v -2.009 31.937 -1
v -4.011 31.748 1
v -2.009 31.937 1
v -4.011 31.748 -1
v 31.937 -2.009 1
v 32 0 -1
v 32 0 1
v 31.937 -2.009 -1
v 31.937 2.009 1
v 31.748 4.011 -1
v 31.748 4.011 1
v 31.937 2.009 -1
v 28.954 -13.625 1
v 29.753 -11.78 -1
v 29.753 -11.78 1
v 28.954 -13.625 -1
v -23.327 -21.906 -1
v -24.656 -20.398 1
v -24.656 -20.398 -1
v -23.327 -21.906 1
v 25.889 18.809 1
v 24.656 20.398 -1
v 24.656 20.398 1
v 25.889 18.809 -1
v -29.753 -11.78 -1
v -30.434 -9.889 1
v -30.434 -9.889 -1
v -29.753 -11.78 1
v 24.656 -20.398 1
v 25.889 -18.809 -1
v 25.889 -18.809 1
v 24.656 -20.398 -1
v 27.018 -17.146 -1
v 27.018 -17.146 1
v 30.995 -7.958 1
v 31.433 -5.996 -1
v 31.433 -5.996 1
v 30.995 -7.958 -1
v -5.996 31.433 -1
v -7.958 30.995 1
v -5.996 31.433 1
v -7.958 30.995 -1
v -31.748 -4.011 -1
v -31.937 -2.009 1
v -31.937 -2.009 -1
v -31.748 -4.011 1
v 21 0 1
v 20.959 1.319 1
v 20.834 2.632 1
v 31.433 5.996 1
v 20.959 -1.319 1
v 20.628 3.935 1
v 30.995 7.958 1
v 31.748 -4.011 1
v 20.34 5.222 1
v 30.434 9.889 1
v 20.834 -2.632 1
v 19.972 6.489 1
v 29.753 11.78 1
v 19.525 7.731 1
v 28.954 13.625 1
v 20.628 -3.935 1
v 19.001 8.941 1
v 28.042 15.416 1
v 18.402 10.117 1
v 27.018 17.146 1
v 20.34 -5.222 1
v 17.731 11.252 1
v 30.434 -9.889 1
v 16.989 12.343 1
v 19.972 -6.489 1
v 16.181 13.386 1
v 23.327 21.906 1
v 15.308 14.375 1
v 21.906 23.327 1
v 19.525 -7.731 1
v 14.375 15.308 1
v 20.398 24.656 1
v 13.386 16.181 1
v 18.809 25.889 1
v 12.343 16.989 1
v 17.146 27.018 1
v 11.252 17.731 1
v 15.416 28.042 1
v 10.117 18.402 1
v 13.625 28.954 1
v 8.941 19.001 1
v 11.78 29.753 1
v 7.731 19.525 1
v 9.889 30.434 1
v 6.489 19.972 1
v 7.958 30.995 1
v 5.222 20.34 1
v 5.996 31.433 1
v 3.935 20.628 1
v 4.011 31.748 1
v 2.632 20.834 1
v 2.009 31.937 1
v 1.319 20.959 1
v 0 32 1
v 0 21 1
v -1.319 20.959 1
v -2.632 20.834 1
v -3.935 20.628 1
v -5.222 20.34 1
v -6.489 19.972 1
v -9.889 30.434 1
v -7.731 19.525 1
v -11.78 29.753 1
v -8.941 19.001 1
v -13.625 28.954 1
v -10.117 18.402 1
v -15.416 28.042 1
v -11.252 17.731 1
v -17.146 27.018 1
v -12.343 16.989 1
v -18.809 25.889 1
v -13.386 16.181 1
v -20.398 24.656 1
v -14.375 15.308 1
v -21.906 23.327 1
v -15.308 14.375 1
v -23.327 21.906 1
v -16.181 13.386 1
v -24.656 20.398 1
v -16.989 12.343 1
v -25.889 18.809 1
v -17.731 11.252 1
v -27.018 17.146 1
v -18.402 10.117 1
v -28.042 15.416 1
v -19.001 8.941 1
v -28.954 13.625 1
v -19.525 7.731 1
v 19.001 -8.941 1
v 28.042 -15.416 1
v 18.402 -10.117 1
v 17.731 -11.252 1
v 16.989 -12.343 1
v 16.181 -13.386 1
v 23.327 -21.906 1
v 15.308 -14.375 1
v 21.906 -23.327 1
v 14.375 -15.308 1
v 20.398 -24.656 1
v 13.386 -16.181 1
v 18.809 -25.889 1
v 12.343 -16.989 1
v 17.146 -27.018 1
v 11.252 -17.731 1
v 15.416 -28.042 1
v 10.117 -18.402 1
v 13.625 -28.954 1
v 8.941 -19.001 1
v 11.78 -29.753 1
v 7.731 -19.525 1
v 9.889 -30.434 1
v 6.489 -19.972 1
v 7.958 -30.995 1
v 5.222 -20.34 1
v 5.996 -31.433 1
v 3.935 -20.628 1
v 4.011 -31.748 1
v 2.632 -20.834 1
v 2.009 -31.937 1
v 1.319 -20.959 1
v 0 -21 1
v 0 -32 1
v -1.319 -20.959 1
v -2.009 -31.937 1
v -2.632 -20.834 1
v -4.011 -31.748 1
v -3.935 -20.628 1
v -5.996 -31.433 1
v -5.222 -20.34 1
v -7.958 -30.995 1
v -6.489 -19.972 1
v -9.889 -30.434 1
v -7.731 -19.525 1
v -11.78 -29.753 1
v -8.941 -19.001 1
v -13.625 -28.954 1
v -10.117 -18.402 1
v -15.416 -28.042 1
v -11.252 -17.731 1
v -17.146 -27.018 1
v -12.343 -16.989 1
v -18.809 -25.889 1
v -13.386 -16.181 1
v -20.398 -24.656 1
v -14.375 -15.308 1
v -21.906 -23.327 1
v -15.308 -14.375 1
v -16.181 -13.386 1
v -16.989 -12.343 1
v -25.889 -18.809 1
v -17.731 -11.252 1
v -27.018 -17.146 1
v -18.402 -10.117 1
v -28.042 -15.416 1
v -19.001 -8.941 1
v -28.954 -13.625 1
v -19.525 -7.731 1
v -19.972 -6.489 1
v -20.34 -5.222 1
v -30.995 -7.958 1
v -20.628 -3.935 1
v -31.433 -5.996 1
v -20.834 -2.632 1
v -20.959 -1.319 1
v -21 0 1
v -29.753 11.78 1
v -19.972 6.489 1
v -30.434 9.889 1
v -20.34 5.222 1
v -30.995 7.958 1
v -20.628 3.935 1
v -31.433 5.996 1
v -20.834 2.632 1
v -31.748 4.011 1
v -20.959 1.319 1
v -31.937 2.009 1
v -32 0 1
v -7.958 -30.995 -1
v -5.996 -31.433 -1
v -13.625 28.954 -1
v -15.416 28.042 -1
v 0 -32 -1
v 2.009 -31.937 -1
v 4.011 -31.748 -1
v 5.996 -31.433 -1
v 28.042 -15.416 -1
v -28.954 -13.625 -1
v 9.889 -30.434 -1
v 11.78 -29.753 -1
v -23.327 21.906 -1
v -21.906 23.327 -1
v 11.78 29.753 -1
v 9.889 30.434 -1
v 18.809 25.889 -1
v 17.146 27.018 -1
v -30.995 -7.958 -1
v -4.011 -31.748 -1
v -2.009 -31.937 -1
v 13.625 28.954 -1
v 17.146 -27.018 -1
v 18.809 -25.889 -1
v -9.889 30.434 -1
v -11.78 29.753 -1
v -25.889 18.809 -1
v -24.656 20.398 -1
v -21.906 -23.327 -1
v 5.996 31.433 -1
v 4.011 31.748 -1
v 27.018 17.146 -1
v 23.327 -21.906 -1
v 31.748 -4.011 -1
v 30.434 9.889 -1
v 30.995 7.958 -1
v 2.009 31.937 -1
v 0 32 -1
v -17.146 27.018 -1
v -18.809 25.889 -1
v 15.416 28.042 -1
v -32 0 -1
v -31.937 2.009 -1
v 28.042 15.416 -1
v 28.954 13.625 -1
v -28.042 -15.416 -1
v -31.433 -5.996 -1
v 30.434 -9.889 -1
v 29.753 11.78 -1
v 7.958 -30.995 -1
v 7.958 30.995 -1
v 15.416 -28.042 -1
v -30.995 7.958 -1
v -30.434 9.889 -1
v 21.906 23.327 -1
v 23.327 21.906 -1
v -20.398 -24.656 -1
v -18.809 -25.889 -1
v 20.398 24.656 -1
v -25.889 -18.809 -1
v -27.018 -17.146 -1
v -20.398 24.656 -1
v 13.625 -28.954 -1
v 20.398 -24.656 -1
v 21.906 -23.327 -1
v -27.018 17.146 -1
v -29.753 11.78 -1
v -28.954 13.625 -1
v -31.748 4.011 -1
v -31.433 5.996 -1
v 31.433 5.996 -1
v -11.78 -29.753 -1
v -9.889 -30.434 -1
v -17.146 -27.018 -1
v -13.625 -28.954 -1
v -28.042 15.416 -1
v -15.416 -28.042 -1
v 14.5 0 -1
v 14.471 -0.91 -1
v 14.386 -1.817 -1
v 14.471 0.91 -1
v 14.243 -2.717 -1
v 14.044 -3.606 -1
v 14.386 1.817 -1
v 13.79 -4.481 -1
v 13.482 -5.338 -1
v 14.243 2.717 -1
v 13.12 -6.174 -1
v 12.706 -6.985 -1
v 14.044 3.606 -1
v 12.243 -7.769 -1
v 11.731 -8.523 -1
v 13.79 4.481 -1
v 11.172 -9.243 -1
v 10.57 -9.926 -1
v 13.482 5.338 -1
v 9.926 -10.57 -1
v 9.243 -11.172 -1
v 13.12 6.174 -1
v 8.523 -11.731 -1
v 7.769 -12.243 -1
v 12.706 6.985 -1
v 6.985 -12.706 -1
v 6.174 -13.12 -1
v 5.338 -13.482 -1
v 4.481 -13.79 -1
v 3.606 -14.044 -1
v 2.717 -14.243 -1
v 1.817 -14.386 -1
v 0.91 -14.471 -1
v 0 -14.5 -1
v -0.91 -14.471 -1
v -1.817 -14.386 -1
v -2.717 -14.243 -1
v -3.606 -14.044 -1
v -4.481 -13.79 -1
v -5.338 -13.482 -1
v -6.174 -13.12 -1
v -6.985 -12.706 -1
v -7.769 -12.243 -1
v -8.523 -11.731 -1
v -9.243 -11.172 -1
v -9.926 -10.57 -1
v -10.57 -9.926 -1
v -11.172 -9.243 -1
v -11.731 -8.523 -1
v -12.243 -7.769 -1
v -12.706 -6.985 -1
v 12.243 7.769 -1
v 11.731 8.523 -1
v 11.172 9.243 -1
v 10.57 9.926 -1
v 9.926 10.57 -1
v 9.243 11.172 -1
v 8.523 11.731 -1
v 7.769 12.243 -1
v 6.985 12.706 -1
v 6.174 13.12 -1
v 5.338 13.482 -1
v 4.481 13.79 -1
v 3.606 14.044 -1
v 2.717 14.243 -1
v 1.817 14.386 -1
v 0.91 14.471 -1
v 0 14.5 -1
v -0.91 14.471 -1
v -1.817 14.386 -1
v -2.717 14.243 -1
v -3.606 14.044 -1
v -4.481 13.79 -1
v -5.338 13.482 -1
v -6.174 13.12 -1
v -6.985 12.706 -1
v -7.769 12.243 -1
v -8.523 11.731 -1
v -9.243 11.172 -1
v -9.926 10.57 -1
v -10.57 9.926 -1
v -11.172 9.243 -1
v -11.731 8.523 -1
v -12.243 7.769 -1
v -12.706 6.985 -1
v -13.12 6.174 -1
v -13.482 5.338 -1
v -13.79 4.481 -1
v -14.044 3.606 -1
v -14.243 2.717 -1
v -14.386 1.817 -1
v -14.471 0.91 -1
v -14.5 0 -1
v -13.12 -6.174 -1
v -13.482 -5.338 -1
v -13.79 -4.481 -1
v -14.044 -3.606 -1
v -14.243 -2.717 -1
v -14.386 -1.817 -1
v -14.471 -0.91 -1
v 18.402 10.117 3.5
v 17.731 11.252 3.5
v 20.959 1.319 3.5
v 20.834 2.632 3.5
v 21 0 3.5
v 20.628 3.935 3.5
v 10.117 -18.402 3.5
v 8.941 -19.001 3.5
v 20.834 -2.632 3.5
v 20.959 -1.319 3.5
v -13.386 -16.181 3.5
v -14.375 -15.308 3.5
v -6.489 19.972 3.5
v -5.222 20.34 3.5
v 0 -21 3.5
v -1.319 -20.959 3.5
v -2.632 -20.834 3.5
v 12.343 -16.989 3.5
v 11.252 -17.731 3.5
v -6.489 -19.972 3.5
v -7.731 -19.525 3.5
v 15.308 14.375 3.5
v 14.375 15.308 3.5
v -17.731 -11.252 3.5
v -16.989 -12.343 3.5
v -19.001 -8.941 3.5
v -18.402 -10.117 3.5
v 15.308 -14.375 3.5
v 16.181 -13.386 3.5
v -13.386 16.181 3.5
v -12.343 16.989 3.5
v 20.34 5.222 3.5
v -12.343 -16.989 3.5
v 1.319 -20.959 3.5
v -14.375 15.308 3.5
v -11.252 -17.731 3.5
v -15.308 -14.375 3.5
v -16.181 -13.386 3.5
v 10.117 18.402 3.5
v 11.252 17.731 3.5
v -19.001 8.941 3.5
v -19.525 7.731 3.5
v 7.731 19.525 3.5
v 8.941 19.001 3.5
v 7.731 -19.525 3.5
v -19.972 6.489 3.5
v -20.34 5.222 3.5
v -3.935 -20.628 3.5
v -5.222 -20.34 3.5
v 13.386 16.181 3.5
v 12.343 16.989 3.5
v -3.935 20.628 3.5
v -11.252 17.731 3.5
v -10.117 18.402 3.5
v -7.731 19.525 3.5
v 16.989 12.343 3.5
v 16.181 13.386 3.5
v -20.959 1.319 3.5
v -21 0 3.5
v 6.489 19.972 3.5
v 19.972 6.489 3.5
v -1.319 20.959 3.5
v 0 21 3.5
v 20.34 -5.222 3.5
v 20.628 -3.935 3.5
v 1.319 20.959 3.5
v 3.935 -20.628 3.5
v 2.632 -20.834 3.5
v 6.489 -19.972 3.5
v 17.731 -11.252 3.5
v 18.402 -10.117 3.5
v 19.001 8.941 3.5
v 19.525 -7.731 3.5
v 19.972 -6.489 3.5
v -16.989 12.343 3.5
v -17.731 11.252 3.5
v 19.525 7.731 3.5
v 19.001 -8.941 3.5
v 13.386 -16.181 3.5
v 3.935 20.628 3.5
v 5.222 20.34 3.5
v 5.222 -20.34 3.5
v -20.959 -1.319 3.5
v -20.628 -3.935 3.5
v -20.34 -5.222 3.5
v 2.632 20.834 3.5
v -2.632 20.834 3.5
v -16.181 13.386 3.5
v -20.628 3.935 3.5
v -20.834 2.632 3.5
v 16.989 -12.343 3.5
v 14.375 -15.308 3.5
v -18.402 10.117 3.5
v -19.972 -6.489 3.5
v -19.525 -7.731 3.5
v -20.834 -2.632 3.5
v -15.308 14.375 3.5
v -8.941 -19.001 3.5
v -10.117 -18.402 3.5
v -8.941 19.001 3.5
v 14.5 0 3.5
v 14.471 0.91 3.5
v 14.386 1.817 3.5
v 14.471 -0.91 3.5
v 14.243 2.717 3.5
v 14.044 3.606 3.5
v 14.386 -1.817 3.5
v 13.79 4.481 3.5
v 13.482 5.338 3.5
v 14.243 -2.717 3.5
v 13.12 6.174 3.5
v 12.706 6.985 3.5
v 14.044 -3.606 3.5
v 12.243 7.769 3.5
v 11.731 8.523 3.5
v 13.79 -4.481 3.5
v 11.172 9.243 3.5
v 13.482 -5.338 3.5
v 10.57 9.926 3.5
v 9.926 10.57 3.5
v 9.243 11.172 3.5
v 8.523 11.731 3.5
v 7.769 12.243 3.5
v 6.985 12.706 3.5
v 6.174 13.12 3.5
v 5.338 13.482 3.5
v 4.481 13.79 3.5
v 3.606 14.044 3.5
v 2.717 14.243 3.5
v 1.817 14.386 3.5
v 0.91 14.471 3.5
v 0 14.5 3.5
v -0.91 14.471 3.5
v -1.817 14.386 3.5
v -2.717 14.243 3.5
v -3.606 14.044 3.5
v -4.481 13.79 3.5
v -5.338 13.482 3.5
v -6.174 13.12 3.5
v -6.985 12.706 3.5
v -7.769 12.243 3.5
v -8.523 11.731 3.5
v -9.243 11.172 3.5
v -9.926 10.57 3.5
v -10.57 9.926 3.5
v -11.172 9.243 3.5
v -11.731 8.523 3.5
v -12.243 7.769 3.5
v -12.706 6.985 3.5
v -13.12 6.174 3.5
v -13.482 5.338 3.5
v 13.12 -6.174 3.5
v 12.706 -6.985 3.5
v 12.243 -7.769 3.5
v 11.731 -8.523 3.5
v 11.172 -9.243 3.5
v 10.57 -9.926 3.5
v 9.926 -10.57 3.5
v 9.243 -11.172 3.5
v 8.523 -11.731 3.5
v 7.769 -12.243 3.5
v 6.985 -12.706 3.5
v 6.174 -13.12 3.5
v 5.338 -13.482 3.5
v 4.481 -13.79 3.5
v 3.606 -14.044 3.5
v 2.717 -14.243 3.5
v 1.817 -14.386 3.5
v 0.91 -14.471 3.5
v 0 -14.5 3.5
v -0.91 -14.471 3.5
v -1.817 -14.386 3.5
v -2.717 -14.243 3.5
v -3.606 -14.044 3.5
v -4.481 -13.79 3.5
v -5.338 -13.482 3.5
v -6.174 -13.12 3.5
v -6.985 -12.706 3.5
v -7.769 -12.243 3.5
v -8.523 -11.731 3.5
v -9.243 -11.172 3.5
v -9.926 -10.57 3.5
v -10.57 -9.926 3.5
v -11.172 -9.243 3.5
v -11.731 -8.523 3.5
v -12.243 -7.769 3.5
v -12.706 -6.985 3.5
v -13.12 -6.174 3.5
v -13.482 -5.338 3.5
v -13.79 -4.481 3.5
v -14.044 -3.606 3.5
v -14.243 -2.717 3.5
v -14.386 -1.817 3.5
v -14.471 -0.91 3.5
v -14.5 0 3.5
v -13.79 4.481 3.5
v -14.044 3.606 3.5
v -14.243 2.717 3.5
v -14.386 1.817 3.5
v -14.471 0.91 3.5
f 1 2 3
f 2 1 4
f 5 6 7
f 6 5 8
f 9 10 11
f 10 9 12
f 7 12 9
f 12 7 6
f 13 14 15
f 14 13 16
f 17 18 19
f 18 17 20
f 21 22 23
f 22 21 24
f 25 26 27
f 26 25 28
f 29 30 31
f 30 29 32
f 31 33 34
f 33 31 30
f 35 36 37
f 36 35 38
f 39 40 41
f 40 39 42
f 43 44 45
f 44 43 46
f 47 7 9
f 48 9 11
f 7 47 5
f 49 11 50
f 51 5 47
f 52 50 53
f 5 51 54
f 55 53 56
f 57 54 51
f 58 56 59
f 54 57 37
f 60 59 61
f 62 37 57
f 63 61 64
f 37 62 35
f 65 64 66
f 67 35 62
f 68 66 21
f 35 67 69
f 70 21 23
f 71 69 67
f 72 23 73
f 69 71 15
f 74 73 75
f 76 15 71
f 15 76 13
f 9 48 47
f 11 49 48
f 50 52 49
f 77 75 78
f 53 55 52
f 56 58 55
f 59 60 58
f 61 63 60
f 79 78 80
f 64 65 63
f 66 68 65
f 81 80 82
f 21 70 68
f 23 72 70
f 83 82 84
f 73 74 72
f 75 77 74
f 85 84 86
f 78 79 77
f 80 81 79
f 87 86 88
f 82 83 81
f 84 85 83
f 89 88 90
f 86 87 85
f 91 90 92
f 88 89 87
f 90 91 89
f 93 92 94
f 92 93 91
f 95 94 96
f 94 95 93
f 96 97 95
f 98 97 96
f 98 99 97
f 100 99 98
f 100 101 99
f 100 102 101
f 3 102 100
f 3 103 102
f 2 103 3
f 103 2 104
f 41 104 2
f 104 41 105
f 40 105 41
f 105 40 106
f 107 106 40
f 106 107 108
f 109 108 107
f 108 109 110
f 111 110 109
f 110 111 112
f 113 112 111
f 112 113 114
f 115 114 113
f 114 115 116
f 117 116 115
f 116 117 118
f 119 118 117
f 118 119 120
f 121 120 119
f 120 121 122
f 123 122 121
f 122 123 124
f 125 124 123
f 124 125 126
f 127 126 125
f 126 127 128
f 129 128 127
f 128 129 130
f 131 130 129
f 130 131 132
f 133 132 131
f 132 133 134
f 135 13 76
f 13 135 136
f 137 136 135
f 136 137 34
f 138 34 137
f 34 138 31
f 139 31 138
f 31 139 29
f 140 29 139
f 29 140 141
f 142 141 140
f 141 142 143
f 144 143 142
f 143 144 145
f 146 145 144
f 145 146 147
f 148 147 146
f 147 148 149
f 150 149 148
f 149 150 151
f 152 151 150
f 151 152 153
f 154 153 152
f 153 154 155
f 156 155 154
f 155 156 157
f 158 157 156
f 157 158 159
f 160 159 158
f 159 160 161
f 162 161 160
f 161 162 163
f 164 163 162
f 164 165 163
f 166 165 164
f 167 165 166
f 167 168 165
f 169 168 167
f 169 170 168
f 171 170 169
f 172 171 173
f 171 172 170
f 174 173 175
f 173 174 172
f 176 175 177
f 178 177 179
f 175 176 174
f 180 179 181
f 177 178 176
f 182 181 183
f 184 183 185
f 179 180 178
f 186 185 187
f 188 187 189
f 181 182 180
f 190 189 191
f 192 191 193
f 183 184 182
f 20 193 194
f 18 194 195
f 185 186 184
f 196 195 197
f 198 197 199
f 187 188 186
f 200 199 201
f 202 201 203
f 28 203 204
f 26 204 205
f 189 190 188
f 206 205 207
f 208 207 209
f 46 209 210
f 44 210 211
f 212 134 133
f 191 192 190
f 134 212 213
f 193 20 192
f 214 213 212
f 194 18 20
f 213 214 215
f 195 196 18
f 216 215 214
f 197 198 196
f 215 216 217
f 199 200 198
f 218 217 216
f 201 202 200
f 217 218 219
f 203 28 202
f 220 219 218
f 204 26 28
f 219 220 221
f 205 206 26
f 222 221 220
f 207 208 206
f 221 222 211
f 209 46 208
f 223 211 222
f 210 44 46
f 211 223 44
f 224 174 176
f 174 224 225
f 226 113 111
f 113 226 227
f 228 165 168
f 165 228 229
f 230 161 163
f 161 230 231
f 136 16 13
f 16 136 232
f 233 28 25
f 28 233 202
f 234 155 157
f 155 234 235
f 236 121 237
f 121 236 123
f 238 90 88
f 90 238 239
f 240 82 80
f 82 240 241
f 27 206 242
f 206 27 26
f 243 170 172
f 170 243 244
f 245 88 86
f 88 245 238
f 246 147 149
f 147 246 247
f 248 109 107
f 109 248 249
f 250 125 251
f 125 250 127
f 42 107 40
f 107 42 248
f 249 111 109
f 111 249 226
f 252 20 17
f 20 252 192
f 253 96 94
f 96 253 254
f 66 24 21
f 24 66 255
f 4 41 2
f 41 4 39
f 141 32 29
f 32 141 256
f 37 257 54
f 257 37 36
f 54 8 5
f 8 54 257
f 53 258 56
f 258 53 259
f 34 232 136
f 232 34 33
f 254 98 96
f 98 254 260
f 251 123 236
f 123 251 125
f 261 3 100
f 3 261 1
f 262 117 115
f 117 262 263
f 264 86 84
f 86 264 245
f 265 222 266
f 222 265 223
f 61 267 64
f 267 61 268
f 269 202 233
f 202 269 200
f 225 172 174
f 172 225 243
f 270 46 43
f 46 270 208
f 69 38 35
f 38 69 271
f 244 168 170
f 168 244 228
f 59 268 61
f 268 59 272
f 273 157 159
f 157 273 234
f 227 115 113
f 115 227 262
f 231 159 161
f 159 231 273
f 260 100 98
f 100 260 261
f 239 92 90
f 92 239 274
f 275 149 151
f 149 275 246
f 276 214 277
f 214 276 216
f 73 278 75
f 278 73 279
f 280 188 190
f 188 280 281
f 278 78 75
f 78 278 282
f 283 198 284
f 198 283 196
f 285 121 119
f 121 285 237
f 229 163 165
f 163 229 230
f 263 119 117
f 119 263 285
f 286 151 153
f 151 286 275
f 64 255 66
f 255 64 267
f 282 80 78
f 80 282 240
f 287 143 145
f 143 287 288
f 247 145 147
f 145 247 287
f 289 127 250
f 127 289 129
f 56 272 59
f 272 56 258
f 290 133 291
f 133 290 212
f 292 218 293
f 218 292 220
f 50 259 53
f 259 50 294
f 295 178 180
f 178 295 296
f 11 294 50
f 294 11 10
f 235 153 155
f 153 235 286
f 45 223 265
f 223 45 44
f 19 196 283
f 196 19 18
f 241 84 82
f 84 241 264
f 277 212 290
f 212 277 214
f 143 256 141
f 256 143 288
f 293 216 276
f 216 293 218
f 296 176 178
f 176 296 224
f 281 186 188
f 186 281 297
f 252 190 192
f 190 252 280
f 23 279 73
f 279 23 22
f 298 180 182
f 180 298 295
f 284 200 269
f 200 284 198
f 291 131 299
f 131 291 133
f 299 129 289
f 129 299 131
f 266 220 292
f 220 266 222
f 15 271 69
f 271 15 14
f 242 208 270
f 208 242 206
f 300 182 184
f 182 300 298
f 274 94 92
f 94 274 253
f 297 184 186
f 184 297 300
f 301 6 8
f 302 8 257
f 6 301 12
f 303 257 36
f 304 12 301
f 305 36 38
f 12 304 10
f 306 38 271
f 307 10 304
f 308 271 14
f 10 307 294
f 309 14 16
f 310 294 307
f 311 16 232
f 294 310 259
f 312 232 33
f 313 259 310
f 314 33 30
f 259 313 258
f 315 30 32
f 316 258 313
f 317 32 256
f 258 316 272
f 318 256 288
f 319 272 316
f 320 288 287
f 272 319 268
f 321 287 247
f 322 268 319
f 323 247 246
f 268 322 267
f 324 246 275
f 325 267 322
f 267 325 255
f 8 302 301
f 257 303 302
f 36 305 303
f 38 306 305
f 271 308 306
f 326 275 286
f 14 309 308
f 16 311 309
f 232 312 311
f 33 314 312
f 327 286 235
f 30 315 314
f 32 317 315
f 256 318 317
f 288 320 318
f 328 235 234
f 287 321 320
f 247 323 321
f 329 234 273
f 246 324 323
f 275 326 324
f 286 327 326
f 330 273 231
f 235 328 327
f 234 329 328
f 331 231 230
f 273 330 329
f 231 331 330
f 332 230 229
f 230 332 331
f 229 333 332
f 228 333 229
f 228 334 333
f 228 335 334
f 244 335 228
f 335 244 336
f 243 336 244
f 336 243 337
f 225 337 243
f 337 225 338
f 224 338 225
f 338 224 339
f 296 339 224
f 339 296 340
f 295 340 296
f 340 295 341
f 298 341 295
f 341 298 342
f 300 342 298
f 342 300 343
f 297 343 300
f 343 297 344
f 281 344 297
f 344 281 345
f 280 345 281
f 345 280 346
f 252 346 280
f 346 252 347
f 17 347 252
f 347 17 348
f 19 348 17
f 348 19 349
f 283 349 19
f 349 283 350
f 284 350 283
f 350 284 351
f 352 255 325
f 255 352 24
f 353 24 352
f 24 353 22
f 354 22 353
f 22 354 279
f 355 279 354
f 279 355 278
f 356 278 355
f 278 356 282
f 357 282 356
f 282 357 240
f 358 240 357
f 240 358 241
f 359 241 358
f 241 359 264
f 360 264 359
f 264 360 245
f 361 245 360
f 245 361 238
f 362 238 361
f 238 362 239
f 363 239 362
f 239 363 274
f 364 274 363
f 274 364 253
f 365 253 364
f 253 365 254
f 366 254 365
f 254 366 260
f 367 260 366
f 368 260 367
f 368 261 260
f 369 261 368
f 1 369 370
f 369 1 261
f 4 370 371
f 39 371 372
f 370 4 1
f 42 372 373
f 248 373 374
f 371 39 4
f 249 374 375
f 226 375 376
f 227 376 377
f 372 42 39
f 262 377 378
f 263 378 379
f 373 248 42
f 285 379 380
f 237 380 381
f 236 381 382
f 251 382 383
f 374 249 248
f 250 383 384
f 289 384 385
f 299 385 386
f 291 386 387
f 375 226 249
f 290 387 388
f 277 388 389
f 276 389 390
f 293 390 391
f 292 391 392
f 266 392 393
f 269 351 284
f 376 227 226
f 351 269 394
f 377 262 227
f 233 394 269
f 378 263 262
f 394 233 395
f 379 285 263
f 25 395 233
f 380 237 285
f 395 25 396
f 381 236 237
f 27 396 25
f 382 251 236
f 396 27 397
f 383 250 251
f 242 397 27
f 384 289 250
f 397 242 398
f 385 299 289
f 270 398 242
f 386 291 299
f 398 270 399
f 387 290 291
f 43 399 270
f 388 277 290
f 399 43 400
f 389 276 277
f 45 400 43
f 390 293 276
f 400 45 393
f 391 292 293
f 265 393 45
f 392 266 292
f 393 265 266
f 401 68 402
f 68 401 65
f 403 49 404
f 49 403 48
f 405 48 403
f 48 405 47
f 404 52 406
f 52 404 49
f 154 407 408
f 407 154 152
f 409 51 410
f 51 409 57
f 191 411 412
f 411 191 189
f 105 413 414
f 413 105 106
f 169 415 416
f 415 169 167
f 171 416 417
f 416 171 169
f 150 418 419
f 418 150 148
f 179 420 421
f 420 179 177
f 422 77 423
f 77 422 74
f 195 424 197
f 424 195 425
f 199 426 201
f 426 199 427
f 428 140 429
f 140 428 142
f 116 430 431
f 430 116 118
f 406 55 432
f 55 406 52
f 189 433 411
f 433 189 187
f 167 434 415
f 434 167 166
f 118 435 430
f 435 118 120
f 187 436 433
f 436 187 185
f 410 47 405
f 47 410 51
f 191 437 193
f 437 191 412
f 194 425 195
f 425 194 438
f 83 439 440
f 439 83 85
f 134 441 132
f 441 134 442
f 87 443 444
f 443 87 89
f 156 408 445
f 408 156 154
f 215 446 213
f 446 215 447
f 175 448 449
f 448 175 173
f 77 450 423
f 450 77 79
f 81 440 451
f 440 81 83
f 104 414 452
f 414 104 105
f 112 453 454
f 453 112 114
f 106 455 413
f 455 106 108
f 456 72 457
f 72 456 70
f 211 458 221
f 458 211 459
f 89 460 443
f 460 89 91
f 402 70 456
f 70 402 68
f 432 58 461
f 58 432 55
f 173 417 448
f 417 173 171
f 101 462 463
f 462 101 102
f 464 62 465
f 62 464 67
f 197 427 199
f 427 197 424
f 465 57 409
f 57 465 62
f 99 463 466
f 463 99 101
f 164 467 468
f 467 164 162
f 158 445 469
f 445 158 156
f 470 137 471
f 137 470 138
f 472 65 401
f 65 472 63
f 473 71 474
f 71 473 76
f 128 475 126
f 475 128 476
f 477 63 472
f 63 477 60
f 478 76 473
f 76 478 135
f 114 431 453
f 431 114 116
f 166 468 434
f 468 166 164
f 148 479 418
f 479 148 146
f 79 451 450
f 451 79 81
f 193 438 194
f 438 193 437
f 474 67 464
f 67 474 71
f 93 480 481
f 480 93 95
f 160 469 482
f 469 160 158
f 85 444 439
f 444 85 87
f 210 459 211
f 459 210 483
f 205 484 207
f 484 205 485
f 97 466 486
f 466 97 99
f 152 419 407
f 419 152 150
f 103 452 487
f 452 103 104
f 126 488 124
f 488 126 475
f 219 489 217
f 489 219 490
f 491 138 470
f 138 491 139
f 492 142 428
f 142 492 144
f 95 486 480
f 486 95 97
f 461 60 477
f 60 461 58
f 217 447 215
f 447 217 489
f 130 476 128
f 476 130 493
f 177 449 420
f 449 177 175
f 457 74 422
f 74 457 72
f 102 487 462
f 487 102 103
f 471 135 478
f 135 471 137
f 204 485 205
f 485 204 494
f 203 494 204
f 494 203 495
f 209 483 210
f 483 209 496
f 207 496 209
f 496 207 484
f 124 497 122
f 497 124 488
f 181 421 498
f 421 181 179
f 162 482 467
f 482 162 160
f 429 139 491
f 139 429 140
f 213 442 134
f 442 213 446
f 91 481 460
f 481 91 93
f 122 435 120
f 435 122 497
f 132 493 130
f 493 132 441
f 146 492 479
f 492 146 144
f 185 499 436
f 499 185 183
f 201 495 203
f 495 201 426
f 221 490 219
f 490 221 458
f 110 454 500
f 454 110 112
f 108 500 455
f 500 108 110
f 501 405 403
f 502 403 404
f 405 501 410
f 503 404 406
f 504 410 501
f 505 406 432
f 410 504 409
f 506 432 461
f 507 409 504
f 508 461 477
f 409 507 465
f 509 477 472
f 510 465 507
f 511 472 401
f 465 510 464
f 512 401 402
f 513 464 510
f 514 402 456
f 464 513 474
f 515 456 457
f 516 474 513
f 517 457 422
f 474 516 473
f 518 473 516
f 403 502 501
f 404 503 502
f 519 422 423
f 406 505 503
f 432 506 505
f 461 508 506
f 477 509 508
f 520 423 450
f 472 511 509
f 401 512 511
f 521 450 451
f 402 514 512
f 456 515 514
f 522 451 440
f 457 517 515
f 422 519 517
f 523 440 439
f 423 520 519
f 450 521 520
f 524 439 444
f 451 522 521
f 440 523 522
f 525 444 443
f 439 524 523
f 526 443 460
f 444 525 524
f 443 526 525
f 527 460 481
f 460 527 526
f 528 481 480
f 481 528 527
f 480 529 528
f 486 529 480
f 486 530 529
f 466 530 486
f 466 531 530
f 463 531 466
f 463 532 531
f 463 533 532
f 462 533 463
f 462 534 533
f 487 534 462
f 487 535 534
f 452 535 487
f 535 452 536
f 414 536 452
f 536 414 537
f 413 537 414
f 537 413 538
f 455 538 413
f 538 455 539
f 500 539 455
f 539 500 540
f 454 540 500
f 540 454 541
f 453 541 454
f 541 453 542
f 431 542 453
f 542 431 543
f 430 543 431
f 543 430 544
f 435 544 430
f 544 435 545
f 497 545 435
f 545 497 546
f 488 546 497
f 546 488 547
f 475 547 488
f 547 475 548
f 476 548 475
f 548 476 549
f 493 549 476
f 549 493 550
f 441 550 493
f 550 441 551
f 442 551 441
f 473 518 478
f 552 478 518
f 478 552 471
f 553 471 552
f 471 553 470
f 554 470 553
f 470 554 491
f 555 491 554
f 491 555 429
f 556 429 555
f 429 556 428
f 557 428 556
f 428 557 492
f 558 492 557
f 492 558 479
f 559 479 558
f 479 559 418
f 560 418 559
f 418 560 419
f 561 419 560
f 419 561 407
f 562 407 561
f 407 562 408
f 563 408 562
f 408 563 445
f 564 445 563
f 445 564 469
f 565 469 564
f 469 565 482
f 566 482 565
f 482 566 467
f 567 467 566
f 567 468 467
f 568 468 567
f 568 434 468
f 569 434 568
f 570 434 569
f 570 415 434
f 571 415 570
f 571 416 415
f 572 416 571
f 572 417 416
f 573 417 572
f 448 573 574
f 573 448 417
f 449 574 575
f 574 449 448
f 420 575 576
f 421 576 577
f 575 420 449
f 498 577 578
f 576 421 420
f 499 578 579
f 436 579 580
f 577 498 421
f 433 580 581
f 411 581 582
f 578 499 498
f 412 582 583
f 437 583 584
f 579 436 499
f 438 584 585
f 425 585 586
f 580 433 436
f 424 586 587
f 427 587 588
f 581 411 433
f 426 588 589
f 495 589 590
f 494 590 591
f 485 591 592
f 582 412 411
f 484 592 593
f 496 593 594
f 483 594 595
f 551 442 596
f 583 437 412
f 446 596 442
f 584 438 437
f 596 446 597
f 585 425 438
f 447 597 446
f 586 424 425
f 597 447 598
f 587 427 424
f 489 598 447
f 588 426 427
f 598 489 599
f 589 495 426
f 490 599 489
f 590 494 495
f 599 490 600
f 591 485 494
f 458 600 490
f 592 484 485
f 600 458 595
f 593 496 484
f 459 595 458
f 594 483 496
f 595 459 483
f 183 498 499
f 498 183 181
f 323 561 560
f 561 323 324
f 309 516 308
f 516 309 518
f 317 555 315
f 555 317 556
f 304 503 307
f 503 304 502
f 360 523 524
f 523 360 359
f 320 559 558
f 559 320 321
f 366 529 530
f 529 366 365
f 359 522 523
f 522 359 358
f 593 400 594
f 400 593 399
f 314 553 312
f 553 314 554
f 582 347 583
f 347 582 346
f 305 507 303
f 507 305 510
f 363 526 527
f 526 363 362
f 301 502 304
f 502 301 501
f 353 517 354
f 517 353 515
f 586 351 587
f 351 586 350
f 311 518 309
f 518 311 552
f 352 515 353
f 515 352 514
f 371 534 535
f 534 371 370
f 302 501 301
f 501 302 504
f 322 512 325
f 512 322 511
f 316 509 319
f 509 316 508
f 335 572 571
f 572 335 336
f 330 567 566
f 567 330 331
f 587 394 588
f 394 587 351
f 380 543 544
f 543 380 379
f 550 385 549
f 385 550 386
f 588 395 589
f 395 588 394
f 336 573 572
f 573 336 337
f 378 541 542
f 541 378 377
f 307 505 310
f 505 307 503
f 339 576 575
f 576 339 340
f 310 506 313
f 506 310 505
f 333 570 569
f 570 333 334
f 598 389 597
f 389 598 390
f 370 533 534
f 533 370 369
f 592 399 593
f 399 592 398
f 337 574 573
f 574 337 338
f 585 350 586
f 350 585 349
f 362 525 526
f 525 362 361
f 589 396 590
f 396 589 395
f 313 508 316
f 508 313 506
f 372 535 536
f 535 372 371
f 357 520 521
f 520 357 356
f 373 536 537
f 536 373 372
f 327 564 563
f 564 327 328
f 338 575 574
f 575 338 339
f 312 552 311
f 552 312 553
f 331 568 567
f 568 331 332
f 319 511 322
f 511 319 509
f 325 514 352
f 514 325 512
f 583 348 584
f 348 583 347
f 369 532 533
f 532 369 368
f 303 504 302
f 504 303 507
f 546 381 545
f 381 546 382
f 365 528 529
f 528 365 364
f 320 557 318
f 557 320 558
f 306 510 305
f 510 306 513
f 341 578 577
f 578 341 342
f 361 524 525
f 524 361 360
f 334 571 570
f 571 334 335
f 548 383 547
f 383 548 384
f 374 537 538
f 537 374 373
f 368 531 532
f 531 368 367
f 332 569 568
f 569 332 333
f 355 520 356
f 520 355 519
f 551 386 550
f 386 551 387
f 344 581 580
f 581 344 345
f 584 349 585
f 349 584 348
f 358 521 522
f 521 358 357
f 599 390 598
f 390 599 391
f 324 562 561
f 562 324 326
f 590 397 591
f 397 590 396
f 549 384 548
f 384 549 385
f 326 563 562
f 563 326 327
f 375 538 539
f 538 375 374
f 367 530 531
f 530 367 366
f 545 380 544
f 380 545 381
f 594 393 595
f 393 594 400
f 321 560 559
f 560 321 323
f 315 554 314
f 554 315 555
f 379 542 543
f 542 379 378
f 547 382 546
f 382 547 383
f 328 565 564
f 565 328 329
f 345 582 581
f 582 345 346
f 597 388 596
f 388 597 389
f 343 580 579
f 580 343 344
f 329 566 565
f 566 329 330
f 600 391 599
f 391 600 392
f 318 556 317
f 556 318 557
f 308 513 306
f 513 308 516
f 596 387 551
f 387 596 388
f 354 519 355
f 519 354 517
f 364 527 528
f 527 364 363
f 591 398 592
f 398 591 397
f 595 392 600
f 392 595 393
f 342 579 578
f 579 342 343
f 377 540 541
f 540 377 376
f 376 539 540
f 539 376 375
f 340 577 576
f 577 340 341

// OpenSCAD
include <threads.scad>;

$fn = $preview ? 25 : 100;
EPSILON = 0.01;

// A simple disc to hold the glass dome pendant lights

DISC_HEIGHT = 2;
DISC_DIAMETER = 64;
DISC_HOLE_DIAMETER = 29;
TOP_DISC_DIAMETER = 42;
TOP_DISC_HEIGHT = 3;

TOTAL_HEIGHT = DISC_HEIGHT + TOP_DISC_HEIGHT;

difference() {
  union() {
    cylinder(h = DISC_HEIGHT, r = DISC_DIAMETER / 2, center = true);
    translate([ 0, 0, DISC_HEIGHT ]) {
      cylinder(h = TOP_DISC_HEIGHT, r = TOP_DISC_DIAMETER / 2, center = true);
    }
  }
  cylinder(h = TOTAL_HEIGHT * 2, r = DISC_HOLE_DIAMETER / 2, center = true);
}
